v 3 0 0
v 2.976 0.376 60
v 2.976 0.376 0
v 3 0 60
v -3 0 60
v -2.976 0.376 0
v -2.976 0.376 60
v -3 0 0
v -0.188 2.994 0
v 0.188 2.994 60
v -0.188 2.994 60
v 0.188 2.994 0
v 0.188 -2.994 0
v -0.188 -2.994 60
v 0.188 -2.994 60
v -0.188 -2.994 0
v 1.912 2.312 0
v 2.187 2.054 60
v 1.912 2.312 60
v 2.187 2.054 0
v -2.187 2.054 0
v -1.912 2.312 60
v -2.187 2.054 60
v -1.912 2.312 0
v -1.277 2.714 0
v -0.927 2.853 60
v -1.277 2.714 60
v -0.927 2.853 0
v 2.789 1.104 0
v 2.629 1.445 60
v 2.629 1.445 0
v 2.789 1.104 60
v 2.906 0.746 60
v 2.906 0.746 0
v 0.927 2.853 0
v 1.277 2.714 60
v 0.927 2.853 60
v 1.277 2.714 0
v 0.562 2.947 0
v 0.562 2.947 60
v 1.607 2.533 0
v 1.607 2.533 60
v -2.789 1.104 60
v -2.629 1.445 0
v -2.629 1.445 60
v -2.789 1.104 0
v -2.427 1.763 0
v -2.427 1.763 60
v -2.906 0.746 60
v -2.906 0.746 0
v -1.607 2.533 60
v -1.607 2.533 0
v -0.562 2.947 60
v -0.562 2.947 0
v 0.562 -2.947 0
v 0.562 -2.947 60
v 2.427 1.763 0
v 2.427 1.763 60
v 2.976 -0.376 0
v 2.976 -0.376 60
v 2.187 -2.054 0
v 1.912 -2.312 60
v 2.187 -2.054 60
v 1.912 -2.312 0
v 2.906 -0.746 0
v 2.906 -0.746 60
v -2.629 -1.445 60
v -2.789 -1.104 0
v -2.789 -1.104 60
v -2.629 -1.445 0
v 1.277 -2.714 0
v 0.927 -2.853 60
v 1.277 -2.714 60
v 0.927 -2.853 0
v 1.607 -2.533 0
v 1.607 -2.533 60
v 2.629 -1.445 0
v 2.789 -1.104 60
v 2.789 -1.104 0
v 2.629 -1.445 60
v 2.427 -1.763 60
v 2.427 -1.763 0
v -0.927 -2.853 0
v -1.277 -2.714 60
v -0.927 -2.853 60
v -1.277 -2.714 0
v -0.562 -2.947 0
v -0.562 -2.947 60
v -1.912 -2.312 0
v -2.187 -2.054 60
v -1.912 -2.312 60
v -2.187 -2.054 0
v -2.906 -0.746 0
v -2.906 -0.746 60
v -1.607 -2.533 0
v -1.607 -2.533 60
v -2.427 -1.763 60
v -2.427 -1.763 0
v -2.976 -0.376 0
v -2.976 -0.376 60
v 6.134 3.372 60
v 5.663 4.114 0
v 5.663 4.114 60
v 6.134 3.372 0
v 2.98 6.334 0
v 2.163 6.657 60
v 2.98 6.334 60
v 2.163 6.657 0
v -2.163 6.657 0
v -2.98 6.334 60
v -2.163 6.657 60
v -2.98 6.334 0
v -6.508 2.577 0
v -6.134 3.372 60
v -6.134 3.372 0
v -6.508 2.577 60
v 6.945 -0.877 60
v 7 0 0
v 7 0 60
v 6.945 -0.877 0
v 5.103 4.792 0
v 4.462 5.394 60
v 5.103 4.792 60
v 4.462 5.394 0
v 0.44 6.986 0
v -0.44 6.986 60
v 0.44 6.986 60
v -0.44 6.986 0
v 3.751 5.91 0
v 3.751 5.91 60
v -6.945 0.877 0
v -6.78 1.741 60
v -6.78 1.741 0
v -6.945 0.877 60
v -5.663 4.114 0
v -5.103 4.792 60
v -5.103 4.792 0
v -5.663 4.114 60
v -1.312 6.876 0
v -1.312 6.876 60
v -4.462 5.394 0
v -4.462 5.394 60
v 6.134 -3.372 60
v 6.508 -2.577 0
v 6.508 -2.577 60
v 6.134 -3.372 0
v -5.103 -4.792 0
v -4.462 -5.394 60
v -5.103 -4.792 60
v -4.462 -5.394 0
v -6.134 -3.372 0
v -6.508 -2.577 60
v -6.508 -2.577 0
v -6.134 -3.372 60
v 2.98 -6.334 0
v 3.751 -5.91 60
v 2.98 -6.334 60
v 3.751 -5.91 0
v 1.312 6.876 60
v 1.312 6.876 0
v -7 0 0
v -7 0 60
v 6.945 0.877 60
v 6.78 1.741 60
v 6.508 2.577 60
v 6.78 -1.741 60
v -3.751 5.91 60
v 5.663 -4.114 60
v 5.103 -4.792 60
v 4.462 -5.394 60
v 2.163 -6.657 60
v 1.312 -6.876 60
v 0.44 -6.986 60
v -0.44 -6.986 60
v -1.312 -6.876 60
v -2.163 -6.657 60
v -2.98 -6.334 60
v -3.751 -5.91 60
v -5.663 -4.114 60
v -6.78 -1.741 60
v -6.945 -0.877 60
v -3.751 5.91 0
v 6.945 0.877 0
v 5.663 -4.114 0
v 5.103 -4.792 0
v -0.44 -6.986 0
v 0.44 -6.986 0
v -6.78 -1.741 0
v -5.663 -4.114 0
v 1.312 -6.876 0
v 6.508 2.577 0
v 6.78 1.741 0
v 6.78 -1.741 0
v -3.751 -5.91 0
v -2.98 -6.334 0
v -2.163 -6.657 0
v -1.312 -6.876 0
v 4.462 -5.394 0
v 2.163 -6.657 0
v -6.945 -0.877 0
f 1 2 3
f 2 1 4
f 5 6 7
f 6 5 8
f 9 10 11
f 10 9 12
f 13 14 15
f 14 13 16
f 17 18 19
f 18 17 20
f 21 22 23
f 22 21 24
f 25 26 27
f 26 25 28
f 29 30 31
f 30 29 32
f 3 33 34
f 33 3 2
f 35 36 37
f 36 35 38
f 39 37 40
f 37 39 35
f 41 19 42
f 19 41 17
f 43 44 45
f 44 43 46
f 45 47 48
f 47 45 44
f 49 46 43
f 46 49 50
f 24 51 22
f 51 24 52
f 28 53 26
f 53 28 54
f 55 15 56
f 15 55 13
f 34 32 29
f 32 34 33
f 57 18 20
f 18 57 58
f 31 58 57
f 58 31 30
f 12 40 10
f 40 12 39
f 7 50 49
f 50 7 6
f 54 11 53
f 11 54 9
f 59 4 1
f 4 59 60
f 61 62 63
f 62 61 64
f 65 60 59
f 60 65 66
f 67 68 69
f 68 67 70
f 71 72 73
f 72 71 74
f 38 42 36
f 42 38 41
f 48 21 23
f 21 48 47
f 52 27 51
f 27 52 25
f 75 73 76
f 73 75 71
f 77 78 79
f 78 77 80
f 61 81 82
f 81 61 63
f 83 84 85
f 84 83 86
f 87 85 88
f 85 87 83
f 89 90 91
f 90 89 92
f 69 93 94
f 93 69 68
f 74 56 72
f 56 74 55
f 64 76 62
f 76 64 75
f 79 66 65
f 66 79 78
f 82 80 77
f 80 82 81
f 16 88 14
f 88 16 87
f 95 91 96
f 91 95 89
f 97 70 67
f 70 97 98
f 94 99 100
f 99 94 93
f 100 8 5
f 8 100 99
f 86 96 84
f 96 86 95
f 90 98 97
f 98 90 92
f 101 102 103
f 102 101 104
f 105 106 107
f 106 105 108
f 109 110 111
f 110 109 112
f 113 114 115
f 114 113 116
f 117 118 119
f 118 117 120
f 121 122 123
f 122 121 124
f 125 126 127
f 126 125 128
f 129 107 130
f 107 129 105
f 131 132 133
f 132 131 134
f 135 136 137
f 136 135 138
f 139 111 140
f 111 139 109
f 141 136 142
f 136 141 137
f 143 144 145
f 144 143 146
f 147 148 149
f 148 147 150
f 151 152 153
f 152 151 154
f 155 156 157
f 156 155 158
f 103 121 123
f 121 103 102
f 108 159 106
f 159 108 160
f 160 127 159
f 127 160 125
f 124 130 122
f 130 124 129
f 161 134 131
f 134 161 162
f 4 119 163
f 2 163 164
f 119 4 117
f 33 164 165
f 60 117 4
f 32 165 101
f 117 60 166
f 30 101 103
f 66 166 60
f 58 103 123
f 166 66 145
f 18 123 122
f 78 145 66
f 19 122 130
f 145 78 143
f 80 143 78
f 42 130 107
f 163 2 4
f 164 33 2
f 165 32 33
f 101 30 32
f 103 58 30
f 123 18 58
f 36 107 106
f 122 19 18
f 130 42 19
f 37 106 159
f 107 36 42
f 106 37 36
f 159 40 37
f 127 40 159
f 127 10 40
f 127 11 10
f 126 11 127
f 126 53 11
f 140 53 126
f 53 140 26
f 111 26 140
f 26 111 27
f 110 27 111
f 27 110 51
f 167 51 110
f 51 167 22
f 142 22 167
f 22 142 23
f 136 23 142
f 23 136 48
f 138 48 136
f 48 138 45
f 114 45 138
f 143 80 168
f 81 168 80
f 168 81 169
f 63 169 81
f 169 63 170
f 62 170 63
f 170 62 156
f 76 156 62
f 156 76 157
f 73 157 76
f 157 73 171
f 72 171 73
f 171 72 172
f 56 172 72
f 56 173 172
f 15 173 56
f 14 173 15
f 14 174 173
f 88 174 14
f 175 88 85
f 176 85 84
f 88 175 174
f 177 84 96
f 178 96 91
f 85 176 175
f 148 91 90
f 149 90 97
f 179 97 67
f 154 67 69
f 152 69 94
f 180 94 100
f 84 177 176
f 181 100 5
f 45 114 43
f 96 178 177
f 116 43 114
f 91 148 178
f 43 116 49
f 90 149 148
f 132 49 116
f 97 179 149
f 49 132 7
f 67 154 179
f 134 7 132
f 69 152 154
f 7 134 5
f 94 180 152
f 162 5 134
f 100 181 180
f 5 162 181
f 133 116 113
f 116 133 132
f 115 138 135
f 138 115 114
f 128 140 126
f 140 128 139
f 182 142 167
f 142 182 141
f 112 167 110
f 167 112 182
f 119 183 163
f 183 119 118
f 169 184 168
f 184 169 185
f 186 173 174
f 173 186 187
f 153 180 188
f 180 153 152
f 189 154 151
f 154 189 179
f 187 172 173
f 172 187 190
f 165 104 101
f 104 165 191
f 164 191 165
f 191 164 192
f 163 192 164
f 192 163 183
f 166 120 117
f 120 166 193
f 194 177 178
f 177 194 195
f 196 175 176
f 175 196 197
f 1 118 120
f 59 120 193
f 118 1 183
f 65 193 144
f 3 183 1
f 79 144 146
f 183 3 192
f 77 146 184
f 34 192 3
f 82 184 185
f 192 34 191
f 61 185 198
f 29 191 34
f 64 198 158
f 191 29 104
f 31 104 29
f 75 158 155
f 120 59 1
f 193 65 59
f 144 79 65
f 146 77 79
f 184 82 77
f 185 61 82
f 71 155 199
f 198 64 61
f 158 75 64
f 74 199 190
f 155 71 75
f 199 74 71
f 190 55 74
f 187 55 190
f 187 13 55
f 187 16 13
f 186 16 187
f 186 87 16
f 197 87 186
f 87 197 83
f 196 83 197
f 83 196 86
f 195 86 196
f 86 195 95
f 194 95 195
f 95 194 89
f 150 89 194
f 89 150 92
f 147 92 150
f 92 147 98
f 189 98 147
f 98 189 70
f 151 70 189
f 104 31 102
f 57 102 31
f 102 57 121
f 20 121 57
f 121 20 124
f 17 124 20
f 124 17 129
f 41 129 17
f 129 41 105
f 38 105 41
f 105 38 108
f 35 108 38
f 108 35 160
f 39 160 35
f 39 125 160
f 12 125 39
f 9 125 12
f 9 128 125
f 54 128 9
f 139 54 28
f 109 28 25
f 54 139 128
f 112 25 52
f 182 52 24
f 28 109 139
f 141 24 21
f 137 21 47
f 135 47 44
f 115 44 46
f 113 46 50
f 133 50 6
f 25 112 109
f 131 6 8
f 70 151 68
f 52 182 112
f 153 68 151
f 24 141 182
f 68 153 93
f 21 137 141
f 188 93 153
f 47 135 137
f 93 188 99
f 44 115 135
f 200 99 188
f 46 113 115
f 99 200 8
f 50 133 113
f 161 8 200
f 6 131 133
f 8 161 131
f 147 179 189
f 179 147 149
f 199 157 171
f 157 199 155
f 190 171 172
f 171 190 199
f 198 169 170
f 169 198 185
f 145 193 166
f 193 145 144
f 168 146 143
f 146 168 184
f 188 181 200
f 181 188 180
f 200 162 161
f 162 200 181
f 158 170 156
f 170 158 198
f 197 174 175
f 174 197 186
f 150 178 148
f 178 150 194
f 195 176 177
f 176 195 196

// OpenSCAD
$fn = 50;


difference() {
	union() {
		*color(alpha = 1.0000000000, c = "gray") {
			translate(v = [0, 7, 0]) {
				linear_extrude(height = 1) {
					text(font = "Arial:style=Bold", halign = "center", size = 4.5000000000, text = "COMMENT plate main", valign = "center");
				}
			}
		}
		cylinder(h = 60, r = 7.0000000000);
	}
	union() {
		*color(alpha = 1.0000000000, c = "gray") {
			translate(v = [0, 7, 0]) {
				linear_extrude(height = 1) {
					text(font = "Arial:style=Bold", halign = "center", size = 4.5000000000, text = "COMMENT holes main", valign = "center");
				}
			}
		}
		translate(v = [0, 0, -100]) {
			cylinder(h = 200, r = 3.0000000000);
		}
		translate(v = [0, 0, -100]) {
			cylinder(h = 200, r = 1.5000000000);
		}
	}
}
